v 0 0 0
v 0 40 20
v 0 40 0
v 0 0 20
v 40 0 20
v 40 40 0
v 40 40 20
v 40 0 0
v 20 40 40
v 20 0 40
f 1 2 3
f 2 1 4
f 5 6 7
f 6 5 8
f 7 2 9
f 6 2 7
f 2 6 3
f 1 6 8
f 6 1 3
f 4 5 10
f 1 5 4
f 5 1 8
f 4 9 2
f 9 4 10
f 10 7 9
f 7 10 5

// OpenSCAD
difference(){
  cube([40, 40, 40], center=false);
  translate([0, 0, 20]){
    color([1,0.8,0]) {
      rotate([0, 315, 0]){
        cube([30, 40, 20], center=false);
      }
    }
  }
  translate([40, 0, 20]){
    color([1,0.8,0]) {
      rotate([0, 315, 0]){
        cube([20, 40, 30], center=false);
      }
    }
  }
}
